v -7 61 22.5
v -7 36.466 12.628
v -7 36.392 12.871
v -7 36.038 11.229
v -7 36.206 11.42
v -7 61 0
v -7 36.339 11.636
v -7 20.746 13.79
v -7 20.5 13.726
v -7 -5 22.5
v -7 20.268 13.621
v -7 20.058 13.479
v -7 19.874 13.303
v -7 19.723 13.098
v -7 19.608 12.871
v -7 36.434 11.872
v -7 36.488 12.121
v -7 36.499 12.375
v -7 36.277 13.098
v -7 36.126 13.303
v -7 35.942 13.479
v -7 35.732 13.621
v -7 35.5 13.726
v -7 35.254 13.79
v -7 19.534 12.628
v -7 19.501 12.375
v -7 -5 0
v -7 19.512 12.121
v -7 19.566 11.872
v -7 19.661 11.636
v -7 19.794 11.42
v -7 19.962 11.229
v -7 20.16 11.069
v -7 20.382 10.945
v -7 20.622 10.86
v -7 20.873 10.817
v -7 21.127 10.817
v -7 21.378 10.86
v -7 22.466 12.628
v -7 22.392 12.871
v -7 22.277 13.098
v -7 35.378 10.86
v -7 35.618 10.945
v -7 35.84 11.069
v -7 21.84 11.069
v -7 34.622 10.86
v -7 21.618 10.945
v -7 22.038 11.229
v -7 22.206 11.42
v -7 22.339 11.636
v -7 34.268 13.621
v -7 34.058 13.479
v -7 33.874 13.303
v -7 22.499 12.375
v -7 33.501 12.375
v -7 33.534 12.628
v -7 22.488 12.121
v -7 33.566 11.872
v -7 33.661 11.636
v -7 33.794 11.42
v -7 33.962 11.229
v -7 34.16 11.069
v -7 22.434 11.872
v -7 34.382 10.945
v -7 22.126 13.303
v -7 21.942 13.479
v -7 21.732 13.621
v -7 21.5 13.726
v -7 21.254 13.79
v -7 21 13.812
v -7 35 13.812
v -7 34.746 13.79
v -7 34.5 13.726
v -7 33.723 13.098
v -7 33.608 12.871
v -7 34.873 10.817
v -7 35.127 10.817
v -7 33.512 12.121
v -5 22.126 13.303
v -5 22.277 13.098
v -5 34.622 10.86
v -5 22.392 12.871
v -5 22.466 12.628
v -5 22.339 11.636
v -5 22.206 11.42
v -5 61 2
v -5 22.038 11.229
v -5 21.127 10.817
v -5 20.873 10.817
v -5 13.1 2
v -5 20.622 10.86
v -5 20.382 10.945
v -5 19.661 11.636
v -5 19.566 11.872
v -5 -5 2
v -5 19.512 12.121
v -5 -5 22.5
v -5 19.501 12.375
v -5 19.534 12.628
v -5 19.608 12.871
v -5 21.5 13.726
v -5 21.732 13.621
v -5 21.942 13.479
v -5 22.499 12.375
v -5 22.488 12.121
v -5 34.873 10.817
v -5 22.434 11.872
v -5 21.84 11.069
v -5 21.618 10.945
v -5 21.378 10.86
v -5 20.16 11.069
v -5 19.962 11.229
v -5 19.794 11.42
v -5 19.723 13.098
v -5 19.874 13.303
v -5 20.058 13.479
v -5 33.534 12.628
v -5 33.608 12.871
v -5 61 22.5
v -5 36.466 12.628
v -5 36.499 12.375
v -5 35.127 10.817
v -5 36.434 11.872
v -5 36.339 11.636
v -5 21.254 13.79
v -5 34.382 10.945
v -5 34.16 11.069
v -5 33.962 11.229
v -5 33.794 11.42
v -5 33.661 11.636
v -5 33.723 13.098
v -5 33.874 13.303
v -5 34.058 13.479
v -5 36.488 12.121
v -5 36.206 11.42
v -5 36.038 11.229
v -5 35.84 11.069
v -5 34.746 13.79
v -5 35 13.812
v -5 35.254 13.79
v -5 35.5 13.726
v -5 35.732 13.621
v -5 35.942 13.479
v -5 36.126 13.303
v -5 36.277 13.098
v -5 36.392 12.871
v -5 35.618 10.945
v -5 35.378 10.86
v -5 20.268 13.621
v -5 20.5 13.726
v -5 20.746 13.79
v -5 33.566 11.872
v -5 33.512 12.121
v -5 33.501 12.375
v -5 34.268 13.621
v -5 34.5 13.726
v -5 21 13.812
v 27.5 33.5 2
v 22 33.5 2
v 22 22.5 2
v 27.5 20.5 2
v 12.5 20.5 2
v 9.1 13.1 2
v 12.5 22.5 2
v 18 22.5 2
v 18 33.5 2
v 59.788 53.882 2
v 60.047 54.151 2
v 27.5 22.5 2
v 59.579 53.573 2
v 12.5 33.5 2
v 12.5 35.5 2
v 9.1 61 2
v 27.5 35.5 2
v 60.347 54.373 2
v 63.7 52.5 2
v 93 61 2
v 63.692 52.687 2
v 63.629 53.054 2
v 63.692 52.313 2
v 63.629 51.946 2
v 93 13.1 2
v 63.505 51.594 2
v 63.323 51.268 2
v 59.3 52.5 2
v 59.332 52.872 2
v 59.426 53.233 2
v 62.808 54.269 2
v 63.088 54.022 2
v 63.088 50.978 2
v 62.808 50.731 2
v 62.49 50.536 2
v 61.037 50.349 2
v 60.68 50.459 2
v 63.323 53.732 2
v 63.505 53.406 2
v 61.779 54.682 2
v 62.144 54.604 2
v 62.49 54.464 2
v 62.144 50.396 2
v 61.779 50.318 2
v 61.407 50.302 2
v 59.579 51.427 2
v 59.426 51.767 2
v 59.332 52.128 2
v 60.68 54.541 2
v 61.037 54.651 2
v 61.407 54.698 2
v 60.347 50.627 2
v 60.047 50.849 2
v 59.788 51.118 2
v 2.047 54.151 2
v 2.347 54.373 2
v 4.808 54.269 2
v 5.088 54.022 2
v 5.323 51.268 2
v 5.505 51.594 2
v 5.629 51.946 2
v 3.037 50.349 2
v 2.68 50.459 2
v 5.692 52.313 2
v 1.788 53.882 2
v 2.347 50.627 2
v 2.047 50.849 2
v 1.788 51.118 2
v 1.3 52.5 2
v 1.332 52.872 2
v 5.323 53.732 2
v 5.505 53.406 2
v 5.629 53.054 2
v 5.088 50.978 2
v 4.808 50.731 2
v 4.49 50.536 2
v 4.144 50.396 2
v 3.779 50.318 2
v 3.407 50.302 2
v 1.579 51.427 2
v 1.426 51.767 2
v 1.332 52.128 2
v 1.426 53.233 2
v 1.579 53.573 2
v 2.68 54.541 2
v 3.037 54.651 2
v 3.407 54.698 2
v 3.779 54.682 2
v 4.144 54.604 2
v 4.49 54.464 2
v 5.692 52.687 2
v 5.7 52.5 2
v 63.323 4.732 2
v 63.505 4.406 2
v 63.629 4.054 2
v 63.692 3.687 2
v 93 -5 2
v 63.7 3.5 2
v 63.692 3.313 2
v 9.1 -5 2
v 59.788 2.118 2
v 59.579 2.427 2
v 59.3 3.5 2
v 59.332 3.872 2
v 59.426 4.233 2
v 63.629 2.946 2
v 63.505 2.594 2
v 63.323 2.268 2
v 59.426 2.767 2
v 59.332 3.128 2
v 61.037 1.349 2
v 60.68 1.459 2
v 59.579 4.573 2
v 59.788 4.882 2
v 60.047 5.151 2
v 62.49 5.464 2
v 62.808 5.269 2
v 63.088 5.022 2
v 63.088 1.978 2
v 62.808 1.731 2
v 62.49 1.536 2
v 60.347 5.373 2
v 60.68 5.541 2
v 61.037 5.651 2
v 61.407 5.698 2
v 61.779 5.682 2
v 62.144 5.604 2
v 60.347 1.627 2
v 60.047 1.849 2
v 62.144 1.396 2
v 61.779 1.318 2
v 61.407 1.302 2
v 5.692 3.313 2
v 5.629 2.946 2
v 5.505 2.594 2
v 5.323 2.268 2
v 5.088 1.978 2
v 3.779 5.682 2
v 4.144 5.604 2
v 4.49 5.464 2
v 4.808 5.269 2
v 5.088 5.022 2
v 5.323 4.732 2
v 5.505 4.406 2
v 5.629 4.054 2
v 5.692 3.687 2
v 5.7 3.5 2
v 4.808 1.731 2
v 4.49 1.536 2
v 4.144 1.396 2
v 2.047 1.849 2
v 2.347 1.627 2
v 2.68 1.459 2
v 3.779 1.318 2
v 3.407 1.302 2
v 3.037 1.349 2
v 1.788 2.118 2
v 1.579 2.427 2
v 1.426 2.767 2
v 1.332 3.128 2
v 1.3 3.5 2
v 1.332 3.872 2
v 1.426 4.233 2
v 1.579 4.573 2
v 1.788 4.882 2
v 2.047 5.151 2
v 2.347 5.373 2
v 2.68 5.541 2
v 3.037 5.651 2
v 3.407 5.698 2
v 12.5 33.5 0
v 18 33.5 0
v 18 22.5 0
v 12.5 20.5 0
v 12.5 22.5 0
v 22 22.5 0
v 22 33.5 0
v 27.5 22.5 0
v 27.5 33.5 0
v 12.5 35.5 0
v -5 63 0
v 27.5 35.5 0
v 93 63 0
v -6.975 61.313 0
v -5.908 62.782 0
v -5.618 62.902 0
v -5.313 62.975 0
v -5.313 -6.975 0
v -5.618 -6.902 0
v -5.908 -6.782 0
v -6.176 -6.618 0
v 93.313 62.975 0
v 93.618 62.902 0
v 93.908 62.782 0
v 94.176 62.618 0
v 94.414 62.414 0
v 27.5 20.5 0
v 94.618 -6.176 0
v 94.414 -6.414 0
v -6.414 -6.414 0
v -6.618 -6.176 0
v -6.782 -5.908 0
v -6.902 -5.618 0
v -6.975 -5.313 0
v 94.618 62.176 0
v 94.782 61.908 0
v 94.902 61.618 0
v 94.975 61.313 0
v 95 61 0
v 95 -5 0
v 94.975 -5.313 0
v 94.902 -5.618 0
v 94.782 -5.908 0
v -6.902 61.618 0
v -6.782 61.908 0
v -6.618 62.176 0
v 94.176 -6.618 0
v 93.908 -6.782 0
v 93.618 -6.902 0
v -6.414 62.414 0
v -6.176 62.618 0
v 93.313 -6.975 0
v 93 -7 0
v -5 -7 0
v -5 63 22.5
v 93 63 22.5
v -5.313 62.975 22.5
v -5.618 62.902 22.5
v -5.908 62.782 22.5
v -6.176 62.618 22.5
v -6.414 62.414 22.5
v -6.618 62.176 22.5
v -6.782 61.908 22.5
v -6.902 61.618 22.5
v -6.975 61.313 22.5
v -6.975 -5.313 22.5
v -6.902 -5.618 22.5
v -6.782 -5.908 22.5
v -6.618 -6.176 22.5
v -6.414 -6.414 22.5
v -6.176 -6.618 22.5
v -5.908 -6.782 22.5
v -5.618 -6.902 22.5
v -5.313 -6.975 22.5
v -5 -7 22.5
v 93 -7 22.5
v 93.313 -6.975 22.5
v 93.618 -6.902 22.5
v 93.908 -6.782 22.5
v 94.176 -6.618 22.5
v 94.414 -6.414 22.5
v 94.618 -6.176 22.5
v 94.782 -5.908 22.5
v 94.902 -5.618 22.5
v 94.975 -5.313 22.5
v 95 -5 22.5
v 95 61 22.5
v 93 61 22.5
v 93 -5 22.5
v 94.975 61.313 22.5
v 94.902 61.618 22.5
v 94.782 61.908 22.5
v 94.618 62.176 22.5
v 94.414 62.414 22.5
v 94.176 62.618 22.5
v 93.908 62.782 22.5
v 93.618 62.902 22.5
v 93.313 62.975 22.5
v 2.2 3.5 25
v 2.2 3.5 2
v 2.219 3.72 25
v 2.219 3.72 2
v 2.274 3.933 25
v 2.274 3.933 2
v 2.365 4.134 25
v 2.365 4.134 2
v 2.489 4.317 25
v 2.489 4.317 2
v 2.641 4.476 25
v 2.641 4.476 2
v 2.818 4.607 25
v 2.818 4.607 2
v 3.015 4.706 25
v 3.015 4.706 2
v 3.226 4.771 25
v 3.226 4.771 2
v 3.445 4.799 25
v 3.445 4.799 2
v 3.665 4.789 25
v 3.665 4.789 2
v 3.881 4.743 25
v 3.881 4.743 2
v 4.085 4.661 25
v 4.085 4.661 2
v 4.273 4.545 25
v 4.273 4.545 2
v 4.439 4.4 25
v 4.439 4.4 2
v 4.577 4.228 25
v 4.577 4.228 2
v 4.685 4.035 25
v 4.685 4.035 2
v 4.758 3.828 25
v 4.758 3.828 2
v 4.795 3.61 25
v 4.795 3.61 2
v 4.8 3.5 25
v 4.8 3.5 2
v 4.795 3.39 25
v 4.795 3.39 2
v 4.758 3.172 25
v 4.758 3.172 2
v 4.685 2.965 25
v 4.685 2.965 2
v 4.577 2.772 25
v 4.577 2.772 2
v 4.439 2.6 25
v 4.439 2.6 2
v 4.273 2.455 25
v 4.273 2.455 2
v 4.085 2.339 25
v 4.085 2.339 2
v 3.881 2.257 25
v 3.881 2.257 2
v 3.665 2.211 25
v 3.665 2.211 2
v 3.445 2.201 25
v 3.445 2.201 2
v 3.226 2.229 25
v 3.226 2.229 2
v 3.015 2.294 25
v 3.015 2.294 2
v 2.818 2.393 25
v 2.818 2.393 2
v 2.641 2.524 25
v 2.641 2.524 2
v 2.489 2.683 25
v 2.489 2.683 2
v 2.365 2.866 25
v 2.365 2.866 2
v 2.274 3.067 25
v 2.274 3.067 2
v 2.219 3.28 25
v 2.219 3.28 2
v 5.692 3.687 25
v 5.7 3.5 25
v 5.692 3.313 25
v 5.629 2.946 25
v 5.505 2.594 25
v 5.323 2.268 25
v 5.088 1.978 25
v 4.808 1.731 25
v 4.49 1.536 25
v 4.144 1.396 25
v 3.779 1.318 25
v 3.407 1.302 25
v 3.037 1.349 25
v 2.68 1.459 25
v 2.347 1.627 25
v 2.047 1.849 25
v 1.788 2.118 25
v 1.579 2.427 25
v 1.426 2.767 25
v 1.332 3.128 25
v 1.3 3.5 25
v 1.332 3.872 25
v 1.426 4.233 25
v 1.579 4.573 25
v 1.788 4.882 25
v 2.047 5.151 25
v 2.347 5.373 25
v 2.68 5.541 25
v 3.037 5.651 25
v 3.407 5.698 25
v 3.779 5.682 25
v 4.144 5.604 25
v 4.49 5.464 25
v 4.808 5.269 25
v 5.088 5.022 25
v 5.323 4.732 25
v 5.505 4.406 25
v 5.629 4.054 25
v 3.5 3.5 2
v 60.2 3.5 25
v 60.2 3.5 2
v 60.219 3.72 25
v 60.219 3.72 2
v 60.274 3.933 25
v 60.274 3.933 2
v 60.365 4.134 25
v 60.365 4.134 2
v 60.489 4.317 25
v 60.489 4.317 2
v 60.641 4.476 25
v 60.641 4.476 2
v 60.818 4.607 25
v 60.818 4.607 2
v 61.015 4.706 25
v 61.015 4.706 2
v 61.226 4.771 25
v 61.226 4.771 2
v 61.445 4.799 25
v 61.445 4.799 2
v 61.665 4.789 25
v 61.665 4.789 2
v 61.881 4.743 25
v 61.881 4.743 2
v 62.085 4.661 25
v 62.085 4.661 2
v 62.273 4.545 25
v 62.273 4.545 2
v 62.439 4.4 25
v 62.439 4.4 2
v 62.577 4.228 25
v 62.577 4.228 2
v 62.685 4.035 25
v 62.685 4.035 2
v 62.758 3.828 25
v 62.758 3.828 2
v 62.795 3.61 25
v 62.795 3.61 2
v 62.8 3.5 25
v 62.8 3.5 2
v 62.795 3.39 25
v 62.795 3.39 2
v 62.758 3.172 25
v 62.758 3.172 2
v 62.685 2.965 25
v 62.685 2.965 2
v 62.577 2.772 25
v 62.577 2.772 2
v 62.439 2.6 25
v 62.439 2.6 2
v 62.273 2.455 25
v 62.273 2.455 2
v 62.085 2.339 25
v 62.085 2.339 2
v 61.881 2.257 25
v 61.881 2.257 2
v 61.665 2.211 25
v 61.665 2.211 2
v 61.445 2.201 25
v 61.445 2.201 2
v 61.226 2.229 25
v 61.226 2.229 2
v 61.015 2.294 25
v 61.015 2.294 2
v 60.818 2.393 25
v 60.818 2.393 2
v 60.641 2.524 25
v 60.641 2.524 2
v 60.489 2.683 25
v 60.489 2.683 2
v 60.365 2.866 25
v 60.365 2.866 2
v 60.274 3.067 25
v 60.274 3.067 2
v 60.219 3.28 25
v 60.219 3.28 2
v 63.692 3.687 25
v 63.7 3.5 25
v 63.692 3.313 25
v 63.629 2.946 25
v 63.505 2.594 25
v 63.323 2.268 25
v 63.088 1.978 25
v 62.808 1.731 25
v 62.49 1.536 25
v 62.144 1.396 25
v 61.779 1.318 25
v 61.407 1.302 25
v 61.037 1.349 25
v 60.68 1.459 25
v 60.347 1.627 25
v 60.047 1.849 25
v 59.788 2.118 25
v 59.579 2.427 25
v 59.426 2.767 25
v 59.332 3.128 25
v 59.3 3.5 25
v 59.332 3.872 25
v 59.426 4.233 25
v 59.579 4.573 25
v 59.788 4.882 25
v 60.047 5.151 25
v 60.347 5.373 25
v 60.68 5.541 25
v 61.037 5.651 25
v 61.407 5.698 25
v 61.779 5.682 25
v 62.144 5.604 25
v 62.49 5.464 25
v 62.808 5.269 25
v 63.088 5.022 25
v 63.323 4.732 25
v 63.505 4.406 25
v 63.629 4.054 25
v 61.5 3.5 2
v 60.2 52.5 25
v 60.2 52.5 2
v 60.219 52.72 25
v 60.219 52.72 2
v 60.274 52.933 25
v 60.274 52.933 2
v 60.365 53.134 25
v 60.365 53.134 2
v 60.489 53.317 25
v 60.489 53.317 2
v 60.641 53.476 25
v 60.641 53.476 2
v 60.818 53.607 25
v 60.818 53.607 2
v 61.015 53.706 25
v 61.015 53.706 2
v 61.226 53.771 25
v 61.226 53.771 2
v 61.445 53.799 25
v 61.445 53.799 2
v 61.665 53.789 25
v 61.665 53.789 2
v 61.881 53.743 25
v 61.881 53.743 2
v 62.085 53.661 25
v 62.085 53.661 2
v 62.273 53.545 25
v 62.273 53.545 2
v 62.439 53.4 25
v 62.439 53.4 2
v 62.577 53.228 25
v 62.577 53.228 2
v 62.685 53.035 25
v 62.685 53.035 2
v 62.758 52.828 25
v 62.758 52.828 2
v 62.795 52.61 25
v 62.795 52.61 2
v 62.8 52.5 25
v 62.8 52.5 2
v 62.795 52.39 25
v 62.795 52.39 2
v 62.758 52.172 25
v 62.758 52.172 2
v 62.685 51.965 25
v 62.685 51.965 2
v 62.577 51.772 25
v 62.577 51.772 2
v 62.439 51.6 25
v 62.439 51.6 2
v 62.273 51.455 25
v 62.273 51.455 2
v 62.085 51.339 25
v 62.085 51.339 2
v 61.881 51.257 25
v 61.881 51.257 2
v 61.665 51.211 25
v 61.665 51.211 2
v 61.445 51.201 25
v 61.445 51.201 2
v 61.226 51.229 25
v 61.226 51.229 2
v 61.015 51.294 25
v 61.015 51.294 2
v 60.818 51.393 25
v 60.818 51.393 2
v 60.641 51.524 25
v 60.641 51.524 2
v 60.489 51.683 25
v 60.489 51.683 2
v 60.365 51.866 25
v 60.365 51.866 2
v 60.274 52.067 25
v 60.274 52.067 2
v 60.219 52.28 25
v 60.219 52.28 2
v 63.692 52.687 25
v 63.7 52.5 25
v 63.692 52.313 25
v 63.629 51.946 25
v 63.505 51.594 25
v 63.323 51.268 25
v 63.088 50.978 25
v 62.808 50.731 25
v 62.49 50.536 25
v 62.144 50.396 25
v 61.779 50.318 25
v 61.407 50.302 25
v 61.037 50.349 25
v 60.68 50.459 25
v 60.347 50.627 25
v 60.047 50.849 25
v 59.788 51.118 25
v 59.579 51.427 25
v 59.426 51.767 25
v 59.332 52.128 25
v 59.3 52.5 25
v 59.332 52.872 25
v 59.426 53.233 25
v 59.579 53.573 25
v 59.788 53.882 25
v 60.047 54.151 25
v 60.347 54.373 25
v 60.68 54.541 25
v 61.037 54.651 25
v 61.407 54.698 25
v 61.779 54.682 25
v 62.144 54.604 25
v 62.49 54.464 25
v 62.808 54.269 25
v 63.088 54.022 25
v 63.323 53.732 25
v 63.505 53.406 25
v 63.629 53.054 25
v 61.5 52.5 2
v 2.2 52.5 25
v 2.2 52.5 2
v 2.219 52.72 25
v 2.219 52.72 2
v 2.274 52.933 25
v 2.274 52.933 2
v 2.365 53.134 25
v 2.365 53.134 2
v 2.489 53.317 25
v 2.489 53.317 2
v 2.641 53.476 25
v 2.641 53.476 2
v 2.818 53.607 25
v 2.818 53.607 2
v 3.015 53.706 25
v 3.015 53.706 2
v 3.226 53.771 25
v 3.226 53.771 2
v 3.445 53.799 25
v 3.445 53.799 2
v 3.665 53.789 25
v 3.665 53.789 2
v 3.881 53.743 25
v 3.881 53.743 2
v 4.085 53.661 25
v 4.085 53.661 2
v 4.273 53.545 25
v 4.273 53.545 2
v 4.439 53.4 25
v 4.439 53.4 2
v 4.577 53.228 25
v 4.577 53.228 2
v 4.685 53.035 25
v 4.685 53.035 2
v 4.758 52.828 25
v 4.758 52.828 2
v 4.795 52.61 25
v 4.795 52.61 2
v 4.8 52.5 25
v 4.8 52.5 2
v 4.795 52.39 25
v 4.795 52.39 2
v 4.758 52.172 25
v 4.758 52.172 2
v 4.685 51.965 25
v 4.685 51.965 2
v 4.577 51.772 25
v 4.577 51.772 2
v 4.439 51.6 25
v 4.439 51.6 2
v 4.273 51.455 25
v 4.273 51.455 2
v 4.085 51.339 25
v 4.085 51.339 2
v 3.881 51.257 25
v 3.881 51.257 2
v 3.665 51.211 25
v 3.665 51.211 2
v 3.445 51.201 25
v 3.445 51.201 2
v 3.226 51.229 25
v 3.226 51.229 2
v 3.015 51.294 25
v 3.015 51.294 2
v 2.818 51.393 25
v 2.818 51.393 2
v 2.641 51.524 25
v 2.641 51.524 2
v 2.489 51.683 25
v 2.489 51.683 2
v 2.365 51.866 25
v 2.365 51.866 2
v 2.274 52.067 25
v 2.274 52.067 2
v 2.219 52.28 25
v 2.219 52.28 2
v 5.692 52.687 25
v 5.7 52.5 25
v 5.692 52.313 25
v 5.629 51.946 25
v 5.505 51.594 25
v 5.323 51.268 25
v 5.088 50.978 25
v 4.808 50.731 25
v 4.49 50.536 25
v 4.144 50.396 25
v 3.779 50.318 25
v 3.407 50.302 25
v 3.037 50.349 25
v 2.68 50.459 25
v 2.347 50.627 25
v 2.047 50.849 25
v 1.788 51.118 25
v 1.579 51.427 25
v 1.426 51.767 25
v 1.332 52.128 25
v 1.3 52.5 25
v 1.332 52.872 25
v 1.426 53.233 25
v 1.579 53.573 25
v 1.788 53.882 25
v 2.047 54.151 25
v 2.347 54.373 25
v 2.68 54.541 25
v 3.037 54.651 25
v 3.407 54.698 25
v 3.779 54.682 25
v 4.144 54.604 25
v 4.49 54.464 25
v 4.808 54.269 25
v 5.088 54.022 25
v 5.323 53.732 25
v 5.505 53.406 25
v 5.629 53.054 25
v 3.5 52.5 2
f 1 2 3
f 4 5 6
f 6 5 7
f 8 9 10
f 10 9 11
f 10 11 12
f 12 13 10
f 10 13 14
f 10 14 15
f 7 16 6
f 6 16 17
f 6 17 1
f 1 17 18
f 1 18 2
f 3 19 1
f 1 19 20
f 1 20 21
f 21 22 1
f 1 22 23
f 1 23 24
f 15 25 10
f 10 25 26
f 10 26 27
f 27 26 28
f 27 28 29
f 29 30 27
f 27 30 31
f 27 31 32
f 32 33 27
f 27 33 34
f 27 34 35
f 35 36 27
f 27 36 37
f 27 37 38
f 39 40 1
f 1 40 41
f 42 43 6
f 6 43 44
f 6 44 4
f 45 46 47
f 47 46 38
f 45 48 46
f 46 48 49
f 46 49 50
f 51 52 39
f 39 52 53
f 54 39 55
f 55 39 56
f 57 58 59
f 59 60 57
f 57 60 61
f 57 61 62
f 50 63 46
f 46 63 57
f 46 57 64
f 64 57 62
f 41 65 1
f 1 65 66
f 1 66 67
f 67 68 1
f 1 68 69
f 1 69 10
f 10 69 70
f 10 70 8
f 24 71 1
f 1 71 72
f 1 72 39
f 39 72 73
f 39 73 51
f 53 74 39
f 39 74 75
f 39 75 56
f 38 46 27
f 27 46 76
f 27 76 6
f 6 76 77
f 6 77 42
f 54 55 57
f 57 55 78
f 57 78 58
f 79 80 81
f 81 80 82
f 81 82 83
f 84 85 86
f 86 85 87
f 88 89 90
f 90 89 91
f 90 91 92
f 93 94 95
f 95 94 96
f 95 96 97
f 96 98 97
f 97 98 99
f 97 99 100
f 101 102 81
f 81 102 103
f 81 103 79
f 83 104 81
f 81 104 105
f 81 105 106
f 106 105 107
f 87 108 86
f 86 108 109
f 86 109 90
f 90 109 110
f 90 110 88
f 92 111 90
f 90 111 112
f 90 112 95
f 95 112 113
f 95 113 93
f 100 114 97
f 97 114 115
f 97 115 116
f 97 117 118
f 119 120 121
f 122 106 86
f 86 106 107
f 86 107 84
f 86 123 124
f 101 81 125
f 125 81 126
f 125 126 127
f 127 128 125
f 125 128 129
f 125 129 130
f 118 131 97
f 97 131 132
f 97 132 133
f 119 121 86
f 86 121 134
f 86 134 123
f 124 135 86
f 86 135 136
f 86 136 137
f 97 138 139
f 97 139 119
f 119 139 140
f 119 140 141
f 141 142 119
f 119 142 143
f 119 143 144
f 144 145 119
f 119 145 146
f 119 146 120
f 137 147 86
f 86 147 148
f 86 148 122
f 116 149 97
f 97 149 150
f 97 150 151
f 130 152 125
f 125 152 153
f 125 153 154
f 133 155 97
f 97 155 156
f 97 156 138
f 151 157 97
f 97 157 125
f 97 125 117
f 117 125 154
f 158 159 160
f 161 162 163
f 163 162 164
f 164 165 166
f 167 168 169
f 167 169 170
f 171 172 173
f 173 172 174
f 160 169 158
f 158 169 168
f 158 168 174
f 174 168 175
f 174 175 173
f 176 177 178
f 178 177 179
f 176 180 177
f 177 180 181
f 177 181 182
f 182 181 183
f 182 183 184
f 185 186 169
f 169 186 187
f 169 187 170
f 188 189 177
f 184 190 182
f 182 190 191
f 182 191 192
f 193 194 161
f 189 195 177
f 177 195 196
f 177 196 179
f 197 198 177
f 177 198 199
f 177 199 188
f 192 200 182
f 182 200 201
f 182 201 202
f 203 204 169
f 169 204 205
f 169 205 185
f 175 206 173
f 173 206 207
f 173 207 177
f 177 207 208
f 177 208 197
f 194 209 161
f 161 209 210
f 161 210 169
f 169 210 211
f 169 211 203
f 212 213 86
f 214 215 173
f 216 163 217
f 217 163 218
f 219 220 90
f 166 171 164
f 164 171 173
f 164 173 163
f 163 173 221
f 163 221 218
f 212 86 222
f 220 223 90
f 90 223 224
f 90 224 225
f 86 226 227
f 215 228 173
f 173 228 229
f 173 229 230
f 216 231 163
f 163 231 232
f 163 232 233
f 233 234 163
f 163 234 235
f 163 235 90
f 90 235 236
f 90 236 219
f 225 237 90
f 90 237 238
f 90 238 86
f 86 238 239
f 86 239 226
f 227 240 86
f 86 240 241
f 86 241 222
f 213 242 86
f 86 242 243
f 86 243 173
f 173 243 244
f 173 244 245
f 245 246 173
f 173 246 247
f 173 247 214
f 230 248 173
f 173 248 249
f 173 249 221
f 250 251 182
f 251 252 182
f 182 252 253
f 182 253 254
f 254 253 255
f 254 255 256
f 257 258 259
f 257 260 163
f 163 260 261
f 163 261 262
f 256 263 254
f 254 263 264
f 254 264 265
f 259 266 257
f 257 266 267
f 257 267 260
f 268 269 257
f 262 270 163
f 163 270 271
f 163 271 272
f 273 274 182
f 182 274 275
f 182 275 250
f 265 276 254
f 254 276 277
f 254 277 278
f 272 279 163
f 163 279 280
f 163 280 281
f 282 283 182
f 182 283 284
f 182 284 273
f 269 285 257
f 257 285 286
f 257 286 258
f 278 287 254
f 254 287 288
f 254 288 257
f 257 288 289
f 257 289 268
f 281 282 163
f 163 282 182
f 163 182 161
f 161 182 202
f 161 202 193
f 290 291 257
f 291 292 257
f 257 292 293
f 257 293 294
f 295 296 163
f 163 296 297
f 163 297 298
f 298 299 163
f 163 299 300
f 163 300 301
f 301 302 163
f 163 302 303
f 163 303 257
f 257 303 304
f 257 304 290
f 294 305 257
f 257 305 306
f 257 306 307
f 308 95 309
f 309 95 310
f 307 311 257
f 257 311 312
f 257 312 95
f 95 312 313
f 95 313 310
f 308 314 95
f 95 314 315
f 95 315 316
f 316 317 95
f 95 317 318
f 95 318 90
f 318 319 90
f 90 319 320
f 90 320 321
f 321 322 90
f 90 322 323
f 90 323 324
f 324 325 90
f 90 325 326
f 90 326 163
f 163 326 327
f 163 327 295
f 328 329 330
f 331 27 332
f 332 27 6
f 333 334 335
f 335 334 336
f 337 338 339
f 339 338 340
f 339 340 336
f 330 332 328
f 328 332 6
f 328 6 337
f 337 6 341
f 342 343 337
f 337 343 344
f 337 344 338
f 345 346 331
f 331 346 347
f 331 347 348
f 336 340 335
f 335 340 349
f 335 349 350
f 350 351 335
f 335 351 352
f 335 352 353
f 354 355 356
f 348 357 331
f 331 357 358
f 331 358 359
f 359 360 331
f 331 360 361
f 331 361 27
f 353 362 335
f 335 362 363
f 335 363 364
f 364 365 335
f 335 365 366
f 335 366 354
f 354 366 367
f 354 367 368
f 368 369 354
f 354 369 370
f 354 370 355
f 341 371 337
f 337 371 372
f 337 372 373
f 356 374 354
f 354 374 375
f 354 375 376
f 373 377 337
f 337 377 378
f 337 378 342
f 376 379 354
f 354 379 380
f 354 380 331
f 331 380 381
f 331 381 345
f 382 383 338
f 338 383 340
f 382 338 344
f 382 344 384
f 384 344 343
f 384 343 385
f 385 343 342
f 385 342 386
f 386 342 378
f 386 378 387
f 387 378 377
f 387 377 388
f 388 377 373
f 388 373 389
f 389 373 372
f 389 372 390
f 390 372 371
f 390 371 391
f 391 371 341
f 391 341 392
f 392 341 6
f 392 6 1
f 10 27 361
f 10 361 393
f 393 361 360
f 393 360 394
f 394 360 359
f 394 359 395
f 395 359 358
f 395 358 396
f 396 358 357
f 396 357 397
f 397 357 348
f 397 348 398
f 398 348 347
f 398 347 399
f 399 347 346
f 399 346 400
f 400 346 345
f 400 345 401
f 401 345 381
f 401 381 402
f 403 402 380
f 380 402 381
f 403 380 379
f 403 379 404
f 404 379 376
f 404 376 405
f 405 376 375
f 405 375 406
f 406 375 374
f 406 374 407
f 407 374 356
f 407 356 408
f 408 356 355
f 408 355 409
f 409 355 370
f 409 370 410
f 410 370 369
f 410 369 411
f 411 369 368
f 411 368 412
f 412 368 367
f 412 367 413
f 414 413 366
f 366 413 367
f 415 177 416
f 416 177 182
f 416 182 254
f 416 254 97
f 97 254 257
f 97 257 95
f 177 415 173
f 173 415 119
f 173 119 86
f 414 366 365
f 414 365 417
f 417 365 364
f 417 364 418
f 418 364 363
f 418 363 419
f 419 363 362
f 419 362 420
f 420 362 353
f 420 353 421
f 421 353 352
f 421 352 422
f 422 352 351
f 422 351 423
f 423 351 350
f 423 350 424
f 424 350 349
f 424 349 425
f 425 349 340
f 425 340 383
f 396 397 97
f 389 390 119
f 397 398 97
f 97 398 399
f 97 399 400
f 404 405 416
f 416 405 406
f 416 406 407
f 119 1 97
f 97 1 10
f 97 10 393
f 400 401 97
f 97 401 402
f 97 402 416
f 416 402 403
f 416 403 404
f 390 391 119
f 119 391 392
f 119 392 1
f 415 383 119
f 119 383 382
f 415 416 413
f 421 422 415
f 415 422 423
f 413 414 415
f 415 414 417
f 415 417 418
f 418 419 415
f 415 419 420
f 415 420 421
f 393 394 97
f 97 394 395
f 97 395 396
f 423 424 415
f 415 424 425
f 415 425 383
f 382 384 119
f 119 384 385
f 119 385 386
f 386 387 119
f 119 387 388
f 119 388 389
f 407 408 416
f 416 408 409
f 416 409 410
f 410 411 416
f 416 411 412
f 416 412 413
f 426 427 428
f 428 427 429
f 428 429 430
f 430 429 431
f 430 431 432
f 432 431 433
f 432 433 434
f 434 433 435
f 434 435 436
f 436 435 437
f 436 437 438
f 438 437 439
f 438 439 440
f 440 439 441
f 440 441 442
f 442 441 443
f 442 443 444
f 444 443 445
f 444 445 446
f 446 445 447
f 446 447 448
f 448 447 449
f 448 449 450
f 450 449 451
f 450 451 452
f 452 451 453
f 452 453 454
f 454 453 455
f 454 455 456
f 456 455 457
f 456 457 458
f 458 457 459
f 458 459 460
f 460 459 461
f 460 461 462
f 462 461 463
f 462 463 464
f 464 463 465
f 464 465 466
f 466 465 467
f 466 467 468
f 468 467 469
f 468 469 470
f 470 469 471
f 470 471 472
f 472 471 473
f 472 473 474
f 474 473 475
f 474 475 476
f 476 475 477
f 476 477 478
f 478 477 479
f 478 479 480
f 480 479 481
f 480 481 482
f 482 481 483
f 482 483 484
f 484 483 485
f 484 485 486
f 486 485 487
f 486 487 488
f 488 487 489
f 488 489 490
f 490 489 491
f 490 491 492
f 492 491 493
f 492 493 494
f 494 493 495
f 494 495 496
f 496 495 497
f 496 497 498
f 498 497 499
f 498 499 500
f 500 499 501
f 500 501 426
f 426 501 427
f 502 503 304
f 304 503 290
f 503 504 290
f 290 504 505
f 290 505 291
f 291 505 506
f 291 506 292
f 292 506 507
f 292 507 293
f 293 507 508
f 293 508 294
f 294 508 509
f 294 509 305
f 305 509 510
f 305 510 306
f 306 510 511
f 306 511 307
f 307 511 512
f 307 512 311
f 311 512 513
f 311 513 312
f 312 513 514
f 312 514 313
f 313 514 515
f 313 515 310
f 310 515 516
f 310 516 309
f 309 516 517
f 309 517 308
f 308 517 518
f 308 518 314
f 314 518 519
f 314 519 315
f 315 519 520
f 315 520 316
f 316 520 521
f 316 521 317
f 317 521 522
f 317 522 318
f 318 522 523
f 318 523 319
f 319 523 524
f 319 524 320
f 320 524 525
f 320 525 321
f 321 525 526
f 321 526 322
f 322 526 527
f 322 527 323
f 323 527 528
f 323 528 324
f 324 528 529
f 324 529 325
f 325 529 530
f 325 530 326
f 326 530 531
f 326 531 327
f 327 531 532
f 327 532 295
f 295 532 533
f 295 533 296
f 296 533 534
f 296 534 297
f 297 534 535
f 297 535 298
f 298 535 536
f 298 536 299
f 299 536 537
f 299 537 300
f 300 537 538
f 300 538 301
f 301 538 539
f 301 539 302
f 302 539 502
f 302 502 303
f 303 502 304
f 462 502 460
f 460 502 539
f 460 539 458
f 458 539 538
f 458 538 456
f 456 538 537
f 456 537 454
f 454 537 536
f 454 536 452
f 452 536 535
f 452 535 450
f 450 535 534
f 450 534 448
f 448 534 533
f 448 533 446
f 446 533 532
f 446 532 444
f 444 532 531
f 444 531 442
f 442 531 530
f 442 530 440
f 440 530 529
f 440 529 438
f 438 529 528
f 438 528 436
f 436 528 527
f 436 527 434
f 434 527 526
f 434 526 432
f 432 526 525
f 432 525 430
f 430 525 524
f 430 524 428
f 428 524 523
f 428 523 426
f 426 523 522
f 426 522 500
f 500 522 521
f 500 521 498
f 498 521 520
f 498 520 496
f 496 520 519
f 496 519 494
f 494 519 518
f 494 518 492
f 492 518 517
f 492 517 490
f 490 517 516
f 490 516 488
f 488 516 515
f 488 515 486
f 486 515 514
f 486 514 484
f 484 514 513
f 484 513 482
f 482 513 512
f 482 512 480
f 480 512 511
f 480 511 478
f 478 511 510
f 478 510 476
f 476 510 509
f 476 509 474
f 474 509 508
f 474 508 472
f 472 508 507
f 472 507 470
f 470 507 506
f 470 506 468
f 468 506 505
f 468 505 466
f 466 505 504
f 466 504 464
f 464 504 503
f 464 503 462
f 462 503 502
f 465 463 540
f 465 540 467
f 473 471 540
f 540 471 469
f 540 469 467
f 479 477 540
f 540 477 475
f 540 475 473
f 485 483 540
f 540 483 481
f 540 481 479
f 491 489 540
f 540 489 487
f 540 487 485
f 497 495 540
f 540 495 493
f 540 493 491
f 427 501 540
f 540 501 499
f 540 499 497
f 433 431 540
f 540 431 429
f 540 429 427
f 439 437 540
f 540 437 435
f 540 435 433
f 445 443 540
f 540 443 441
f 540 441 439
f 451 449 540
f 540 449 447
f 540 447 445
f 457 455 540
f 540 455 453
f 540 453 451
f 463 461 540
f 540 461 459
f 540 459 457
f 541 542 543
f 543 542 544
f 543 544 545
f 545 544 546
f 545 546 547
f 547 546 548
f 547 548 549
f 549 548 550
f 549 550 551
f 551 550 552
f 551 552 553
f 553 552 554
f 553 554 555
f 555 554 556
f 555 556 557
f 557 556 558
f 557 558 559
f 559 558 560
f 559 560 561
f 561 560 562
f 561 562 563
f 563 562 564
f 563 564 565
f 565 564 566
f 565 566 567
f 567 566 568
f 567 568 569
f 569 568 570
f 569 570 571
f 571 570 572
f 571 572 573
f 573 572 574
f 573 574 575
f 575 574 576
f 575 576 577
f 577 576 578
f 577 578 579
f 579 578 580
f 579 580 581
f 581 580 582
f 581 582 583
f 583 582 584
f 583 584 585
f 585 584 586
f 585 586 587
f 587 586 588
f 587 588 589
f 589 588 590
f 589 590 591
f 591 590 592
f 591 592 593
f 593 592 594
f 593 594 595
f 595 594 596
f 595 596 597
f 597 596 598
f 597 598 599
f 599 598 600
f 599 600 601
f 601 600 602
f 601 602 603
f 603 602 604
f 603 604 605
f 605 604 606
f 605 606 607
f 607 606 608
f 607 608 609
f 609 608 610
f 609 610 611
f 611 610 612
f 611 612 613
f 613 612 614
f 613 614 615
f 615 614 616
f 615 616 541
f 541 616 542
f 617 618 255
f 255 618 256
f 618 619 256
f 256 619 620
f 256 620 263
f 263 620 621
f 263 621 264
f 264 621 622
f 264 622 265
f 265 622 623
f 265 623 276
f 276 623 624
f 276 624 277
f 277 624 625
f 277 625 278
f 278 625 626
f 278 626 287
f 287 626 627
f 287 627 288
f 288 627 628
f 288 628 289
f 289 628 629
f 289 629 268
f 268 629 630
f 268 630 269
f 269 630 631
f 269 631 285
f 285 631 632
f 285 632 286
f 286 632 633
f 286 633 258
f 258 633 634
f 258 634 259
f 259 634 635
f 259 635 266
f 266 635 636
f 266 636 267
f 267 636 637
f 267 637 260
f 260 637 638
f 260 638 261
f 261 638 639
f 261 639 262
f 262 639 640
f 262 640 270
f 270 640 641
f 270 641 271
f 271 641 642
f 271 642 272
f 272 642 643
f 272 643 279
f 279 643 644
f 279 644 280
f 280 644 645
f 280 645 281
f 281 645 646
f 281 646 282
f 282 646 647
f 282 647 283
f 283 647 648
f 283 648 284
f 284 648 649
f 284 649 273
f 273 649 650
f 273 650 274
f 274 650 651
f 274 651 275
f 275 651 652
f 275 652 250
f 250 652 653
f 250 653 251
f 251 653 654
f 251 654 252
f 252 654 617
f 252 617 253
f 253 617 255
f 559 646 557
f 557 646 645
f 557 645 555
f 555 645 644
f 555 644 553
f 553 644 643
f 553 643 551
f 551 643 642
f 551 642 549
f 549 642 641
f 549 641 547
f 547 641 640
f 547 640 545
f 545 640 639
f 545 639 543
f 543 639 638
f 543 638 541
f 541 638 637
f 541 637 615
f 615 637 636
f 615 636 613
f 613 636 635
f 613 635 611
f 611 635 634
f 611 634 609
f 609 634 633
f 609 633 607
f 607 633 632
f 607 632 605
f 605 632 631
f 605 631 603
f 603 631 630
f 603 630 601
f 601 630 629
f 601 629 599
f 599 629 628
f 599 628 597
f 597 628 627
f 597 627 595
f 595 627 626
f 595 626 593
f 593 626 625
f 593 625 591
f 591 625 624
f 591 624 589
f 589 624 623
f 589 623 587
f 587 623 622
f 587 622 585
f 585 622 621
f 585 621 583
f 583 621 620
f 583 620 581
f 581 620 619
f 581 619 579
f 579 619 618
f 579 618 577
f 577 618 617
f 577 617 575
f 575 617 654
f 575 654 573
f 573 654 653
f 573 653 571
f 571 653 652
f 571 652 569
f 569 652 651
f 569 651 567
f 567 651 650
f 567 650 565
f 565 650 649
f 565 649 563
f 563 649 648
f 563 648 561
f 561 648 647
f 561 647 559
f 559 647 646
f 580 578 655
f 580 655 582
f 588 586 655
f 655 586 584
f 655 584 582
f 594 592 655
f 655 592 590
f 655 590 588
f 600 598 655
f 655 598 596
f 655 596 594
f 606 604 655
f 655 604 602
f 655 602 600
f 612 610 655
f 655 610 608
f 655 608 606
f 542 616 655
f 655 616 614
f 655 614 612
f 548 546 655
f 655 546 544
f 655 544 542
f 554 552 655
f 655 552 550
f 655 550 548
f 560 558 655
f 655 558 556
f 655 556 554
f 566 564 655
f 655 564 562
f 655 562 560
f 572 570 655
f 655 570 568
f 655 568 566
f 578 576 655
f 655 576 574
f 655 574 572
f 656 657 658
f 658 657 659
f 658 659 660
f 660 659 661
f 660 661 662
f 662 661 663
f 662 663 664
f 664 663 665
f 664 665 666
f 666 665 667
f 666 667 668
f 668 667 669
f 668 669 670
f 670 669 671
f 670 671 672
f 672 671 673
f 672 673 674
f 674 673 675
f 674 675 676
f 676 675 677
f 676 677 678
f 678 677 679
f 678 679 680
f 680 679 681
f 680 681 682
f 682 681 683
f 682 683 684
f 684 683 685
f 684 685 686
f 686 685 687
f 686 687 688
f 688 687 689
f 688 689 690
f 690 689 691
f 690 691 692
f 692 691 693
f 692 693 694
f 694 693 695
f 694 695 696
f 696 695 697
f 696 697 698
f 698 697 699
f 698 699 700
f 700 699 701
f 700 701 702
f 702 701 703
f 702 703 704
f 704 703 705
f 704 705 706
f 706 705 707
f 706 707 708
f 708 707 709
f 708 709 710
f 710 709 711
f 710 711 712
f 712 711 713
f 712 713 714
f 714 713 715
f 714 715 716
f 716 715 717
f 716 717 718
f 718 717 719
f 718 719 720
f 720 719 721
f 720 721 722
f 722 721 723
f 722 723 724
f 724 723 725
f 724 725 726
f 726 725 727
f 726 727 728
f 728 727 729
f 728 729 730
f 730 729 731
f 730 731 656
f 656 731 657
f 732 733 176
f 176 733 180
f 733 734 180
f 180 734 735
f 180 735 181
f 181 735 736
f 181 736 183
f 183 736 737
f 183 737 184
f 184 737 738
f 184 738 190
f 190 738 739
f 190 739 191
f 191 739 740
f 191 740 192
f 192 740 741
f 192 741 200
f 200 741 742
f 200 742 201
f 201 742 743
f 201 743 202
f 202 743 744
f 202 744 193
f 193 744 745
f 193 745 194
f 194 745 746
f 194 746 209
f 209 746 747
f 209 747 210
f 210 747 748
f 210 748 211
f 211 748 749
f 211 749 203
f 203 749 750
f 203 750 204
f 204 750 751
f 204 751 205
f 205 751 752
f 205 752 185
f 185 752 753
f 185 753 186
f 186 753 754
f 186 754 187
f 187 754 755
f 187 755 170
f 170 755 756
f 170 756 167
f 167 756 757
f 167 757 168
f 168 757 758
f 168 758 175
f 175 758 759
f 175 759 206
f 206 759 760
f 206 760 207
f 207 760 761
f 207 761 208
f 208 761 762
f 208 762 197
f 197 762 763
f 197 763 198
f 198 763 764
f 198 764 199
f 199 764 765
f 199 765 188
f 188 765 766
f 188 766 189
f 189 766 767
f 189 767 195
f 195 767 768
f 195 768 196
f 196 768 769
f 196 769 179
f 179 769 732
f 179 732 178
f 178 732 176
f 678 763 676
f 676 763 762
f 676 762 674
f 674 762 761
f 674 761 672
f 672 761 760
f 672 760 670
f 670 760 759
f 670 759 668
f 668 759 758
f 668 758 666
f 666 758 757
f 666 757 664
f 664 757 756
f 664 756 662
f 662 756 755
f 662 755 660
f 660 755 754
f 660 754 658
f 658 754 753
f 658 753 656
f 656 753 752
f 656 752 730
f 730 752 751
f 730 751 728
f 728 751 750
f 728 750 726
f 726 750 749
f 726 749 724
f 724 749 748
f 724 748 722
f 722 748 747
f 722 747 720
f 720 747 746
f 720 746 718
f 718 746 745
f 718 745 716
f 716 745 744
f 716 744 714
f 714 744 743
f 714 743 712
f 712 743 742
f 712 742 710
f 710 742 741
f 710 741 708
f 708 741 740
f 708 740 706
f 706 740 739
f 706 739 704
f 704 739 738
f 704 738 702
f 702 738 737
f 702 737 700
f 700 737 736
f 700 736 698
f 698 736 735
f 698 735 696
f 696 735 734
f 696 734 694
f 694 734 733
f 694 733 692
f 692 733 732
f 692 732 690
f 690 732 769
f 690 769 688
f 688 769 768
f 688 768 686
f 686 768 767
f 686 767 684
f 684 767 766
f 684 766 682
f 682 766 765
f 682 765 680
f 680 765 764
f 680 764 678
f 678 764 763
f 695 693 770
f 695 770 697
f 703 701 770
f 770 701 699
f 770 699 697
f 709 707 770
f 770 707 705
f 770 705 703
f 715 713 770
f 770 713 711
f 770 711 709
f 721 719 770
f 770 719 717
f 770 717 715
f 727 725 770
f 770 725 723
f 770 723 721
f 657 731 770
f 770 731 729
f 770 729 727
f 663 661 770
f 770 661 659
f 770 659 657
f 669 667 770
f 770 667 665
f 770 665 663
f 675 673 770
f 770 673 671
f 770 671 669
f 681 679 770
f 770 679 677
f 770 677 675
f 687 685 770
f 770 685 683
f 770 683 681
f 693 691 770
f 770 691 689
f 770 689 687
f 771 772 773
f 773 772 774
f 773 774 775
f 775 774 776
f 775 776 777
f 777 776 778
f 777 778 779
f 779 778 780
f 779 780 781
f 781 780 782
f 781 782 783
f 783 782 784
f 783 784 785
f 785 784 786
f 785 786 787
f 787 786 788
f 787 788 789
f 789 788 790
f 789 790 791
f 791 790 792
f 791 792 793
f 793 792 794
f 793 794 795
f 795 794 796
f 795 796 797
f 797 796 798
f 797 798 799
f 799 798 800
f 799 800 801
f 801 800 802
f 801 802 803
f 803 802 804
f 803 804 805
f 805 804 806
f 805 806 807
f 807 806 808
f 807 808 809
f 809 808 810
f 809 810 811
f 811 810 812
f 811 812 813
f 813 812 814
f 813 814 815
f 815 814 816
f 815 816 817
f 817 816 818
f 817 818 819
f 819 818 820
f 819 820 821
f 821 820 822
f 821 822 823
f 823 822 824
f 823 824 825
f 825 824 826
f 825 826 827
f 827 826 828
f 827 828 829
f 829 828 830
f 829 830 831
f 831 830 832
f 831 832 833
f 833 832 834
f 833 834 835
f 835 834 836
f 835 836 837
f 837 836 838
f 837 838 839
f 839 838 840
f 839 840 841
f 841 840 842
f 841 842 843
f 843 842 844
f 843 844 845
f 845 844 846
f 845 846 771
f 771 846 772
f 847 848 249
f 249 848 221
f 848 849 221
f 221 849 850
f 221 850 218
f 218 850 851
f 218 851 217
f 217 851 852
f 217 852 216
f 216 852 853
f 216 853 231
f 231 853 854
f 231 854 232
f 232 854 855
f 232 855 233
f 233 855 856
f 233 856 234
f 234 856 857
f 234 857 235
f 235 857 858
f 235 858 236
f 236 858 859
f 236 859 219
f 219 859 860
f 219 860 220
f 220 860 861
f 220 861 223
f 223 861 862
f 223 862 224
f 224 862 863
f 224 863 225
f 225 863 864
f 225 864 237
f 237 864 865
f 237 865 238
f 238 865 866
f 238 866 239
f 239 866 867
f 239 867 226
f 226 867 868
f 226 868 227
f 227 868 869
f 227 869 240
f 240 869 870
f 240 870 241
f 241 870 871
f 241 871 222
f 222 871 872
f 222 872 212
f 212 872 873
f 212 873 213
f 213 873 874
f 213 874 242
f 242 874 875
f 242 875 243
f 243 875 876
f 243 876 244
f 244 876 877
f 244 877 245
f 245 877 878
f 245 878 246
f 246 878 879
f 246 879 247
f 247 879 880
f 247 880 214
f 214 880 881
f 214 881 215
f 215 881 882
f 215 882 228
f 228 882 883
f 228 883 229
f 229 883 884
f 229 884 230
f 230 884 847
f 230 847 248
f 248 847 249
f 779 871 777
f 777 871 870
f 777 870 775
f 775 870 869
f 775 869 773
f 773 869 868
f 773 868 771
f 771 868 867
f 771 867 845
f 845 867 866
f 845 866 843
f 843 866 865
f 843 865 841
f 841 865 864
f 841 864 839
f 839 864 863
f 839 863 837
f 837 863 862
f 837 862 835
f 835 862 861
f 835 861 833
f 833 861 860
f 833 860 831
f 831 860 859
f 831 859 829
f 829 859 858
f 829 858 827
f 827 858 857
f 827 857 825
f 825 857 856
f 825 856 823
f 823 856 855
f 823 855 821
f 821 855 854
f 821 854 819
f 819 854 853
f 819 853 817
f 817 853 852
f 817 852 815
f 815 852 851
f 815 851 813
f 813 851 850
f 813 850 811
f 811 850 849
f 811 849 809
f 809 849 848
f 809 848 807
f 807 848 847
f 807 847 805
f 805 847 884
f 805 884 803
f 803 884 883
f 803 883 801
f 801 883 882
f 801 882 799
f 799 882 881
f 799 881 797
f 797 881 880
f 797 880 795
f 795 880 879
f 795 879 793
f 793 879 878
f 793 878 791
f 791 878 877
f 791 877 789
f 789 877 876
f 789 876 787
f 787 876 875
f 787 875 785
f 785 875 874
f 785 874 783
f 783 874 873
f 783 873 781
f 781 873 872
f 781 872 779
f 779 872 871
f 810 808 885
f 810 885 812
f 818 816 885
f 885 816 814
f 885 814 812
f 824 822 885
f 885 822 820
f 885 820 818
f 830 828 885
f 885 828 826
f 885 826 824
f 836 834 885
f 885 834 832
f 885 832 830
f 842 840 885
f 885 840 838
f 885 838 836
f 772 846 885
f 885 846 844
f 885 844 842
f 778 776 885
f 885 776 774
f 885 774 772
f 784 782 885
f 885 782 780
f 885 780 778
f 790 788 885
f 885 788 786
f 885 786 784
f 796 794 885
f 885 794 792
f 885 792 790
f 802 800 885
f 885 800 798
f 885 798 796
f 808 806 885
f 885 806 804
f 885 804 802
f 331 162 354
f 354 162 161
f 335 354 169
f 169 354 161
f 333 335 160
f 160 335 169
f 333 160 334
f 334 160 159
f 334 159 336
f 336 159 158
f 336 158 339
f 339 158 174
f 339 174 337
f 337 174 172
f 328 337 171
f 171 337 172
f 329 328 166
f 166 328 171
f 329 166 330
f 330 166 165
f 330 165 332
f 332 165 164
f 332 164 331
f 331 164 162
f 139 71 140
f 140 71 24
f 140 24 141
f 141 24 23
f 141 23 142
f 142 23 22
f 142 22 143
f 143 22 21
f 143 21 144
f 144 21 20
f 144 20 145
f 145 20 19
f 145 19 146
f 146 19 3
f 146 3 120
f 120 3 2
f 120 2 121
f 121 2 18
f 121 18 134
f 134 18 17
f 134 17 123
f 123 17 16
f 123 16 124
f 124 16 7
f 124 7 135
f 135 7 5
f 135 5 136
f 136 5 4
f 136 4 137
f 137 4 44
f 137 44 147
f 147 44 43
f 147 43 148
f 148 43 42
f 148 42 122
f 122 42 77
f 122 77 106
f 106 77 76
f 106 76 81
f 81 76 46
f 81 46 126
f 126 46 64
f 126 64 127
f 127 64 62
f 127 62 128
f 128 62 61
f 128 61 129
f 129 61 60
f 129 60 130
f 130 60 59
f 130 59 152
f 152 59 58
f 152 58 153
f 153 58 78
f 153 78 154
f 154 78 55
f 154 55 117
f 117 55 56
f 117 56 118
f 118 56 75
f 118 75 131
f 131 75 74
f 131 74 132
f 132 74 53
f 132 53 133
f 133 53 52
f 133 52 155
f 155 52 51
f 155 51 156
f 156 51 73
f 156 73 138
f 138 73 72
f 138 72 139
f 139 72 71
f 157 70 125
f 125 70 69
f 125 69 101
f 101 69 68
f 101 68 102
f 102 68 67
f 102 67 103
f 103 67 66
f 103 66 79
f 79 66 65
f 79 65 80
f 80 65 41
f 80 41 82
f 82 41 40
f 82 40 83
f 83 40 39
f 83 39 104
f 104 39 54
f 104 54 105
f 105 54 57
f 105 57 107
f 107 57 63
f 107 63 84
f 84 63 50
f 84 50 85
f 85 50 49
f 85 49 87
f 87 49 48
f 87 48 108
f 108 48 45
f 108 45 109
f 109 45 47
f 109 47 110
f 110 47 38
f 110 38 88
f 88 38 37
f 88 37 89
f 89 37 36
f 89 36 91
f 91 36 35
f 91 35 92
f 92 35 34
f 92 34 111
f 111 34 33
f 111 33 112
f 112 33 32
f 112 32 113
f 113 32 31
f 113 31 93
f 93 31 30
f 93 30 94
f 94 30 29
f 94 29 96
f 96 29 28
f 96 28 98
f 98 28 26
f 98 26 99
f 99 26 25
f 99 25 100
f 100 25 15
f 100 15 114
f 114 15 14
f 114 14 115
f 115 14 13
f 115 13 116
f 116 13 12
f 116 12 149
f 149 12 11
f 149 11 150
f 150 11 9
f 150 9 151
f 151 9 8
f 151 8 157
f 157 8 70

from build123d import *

# Parameters (mm, degrees)
BOSS_EXTRUDE1_DEPTH = 2
BOSS_EXTRUDE2_DEPTH = 22.5
SKETCH1_6_R         = 2.2
SKETCH1_6_R_2       = 1.3
BOSS_EXTRUDE3_DEPTH = 25
CUT_EXTRUDE1_DEPTH  = 25
SKETCH3_R           = 1.5
CUT_EXTRUDE2_DEPTH  = 25


with BuildPart() as part:
    # Sketch1 → Boss-Extrude1 (new body)
    with BuildSketch(Plane.XY):
        Polygon((-5, -5), (93, -5), (93, 0), (93, 56), (93, 61), (-5, 61), align=None)
    extrude(amount=BOSS_EXTRUDE1_DEPTH)

    # Sketch1<5> → Boss-Extrude2 (add)
    with BuildSketch(Plane.XY):
        with BuildLine():
            Line((93, 63), (-5, 63))
            ThreePointArc((-5, 63), (-6.414213562, 62.414213562), (-7, 61))
            Line((-7, 61), (-7, -5))
            ThreePointArc((-7, -5), (-6.414213562, -6.414213562), (-5, -7))
            Line((-5, -7), (93, -7))
            ThreePointArc((93, -7), (94.414213562, -6.414213562), (95, -5))
            Line((95, -5), (95, 0))
            Line((95, 0), (95, 56))
            Line((95, 56), (95, 61))
            ThreePointArc((95, 61), (94.414213562, 62.414213562), (93, 63))
        make_face()
        Polygon((93, -5), (-5, -5), (-5, 61), (93, 61), (93, 56), (93, 0), align=None, mode=Mode.SUBTRACT)
    extrude(amount=BOSS_EXTRUDE2_DEPTH)

    # Sketch1<6> → Boss-Extrude3 (add)
    # profile 1 of 4: a face of its own
    with BuildSketch(Plane.XY):
        with Locations((3.5, 52.5)):
            Circle(SKETCH1_6_R)
        with Locations((3.5, 52.5)):
            Circle(SKETCH1_6_R_2, mode=Mode.SUBTRACT)
    # profile 2 of 4: a face of its own
    with BuildSketch(Plane.XY):
        with Locations((61.5, 52.5)):
            Circle(SKETCH1_6_R)
        with Locations((61.5, 52.5)):
            Circle(SKETCH1_6_R_2, mode=Mode.SUBTRACT)
    # profile 3 of 4: a face of its own
    with BuildSketch(Plane.XY):
        with Locations((61.5, 3.5)):
            Circle(SKETCH1_6_R)
        with Locations((61.5, 3.5)):
            Circle(SKETCH1_6_R_2, mode=Mode.SUBTRACT)
    # profile 4 of 4: a face of its own
    with BuildSketch(Plane.XY):
        with Locations((3.5, 3.5)):
            Circle(SKETCH1_6_R)
        with Locations((3.5, 3.5)):
            Circle(SKETCH1_6_R_2, mode=Mode.SUBTRACT)
    extrude(amount=BOSS_EXTRUDE3_DEPTH)

    # Sketch2 → Cut-Extrude1 (cut)
    with BuildSketch(Plane(origin=(0, 0, 0), x_dir=(-1, 0, 0), z_dir=(0, 0, -1))):
        Polygon((-27.5, 20.5), (-20, 20.5), (-12.5, 20.5), (-12.5, 22.5), (-18, 22.5), (-18, 28), (-18, 33.5), (-12.5, 33.5), (-12.5, 35.5), (-20, 35.5), (-27.5, 35.5), (-27.5, 33.5), (-22, 33.5), (-22, 28), (-22, 22.5), (-27.5, 22.5), align=None)
    extrude(amount=-CUT_EXTRUDE1_DEPTH, mode=Mode.SUBTRACT)

    # Sketch3 → Cut-Extrude2 (cut)
    with BuildSketch(Plane.ZY.offset(7)):
        with Locations((12.31170847, 35)):
            Circle(SKETCH3_R)
        with Locations((12.31170847, 21)):
            Circle(SKETCH3_R)
    extrude(amount=-CUT_EXTRUDE2_DEPTH, mode=Mode.SUBTRACT)


solid = part.part
